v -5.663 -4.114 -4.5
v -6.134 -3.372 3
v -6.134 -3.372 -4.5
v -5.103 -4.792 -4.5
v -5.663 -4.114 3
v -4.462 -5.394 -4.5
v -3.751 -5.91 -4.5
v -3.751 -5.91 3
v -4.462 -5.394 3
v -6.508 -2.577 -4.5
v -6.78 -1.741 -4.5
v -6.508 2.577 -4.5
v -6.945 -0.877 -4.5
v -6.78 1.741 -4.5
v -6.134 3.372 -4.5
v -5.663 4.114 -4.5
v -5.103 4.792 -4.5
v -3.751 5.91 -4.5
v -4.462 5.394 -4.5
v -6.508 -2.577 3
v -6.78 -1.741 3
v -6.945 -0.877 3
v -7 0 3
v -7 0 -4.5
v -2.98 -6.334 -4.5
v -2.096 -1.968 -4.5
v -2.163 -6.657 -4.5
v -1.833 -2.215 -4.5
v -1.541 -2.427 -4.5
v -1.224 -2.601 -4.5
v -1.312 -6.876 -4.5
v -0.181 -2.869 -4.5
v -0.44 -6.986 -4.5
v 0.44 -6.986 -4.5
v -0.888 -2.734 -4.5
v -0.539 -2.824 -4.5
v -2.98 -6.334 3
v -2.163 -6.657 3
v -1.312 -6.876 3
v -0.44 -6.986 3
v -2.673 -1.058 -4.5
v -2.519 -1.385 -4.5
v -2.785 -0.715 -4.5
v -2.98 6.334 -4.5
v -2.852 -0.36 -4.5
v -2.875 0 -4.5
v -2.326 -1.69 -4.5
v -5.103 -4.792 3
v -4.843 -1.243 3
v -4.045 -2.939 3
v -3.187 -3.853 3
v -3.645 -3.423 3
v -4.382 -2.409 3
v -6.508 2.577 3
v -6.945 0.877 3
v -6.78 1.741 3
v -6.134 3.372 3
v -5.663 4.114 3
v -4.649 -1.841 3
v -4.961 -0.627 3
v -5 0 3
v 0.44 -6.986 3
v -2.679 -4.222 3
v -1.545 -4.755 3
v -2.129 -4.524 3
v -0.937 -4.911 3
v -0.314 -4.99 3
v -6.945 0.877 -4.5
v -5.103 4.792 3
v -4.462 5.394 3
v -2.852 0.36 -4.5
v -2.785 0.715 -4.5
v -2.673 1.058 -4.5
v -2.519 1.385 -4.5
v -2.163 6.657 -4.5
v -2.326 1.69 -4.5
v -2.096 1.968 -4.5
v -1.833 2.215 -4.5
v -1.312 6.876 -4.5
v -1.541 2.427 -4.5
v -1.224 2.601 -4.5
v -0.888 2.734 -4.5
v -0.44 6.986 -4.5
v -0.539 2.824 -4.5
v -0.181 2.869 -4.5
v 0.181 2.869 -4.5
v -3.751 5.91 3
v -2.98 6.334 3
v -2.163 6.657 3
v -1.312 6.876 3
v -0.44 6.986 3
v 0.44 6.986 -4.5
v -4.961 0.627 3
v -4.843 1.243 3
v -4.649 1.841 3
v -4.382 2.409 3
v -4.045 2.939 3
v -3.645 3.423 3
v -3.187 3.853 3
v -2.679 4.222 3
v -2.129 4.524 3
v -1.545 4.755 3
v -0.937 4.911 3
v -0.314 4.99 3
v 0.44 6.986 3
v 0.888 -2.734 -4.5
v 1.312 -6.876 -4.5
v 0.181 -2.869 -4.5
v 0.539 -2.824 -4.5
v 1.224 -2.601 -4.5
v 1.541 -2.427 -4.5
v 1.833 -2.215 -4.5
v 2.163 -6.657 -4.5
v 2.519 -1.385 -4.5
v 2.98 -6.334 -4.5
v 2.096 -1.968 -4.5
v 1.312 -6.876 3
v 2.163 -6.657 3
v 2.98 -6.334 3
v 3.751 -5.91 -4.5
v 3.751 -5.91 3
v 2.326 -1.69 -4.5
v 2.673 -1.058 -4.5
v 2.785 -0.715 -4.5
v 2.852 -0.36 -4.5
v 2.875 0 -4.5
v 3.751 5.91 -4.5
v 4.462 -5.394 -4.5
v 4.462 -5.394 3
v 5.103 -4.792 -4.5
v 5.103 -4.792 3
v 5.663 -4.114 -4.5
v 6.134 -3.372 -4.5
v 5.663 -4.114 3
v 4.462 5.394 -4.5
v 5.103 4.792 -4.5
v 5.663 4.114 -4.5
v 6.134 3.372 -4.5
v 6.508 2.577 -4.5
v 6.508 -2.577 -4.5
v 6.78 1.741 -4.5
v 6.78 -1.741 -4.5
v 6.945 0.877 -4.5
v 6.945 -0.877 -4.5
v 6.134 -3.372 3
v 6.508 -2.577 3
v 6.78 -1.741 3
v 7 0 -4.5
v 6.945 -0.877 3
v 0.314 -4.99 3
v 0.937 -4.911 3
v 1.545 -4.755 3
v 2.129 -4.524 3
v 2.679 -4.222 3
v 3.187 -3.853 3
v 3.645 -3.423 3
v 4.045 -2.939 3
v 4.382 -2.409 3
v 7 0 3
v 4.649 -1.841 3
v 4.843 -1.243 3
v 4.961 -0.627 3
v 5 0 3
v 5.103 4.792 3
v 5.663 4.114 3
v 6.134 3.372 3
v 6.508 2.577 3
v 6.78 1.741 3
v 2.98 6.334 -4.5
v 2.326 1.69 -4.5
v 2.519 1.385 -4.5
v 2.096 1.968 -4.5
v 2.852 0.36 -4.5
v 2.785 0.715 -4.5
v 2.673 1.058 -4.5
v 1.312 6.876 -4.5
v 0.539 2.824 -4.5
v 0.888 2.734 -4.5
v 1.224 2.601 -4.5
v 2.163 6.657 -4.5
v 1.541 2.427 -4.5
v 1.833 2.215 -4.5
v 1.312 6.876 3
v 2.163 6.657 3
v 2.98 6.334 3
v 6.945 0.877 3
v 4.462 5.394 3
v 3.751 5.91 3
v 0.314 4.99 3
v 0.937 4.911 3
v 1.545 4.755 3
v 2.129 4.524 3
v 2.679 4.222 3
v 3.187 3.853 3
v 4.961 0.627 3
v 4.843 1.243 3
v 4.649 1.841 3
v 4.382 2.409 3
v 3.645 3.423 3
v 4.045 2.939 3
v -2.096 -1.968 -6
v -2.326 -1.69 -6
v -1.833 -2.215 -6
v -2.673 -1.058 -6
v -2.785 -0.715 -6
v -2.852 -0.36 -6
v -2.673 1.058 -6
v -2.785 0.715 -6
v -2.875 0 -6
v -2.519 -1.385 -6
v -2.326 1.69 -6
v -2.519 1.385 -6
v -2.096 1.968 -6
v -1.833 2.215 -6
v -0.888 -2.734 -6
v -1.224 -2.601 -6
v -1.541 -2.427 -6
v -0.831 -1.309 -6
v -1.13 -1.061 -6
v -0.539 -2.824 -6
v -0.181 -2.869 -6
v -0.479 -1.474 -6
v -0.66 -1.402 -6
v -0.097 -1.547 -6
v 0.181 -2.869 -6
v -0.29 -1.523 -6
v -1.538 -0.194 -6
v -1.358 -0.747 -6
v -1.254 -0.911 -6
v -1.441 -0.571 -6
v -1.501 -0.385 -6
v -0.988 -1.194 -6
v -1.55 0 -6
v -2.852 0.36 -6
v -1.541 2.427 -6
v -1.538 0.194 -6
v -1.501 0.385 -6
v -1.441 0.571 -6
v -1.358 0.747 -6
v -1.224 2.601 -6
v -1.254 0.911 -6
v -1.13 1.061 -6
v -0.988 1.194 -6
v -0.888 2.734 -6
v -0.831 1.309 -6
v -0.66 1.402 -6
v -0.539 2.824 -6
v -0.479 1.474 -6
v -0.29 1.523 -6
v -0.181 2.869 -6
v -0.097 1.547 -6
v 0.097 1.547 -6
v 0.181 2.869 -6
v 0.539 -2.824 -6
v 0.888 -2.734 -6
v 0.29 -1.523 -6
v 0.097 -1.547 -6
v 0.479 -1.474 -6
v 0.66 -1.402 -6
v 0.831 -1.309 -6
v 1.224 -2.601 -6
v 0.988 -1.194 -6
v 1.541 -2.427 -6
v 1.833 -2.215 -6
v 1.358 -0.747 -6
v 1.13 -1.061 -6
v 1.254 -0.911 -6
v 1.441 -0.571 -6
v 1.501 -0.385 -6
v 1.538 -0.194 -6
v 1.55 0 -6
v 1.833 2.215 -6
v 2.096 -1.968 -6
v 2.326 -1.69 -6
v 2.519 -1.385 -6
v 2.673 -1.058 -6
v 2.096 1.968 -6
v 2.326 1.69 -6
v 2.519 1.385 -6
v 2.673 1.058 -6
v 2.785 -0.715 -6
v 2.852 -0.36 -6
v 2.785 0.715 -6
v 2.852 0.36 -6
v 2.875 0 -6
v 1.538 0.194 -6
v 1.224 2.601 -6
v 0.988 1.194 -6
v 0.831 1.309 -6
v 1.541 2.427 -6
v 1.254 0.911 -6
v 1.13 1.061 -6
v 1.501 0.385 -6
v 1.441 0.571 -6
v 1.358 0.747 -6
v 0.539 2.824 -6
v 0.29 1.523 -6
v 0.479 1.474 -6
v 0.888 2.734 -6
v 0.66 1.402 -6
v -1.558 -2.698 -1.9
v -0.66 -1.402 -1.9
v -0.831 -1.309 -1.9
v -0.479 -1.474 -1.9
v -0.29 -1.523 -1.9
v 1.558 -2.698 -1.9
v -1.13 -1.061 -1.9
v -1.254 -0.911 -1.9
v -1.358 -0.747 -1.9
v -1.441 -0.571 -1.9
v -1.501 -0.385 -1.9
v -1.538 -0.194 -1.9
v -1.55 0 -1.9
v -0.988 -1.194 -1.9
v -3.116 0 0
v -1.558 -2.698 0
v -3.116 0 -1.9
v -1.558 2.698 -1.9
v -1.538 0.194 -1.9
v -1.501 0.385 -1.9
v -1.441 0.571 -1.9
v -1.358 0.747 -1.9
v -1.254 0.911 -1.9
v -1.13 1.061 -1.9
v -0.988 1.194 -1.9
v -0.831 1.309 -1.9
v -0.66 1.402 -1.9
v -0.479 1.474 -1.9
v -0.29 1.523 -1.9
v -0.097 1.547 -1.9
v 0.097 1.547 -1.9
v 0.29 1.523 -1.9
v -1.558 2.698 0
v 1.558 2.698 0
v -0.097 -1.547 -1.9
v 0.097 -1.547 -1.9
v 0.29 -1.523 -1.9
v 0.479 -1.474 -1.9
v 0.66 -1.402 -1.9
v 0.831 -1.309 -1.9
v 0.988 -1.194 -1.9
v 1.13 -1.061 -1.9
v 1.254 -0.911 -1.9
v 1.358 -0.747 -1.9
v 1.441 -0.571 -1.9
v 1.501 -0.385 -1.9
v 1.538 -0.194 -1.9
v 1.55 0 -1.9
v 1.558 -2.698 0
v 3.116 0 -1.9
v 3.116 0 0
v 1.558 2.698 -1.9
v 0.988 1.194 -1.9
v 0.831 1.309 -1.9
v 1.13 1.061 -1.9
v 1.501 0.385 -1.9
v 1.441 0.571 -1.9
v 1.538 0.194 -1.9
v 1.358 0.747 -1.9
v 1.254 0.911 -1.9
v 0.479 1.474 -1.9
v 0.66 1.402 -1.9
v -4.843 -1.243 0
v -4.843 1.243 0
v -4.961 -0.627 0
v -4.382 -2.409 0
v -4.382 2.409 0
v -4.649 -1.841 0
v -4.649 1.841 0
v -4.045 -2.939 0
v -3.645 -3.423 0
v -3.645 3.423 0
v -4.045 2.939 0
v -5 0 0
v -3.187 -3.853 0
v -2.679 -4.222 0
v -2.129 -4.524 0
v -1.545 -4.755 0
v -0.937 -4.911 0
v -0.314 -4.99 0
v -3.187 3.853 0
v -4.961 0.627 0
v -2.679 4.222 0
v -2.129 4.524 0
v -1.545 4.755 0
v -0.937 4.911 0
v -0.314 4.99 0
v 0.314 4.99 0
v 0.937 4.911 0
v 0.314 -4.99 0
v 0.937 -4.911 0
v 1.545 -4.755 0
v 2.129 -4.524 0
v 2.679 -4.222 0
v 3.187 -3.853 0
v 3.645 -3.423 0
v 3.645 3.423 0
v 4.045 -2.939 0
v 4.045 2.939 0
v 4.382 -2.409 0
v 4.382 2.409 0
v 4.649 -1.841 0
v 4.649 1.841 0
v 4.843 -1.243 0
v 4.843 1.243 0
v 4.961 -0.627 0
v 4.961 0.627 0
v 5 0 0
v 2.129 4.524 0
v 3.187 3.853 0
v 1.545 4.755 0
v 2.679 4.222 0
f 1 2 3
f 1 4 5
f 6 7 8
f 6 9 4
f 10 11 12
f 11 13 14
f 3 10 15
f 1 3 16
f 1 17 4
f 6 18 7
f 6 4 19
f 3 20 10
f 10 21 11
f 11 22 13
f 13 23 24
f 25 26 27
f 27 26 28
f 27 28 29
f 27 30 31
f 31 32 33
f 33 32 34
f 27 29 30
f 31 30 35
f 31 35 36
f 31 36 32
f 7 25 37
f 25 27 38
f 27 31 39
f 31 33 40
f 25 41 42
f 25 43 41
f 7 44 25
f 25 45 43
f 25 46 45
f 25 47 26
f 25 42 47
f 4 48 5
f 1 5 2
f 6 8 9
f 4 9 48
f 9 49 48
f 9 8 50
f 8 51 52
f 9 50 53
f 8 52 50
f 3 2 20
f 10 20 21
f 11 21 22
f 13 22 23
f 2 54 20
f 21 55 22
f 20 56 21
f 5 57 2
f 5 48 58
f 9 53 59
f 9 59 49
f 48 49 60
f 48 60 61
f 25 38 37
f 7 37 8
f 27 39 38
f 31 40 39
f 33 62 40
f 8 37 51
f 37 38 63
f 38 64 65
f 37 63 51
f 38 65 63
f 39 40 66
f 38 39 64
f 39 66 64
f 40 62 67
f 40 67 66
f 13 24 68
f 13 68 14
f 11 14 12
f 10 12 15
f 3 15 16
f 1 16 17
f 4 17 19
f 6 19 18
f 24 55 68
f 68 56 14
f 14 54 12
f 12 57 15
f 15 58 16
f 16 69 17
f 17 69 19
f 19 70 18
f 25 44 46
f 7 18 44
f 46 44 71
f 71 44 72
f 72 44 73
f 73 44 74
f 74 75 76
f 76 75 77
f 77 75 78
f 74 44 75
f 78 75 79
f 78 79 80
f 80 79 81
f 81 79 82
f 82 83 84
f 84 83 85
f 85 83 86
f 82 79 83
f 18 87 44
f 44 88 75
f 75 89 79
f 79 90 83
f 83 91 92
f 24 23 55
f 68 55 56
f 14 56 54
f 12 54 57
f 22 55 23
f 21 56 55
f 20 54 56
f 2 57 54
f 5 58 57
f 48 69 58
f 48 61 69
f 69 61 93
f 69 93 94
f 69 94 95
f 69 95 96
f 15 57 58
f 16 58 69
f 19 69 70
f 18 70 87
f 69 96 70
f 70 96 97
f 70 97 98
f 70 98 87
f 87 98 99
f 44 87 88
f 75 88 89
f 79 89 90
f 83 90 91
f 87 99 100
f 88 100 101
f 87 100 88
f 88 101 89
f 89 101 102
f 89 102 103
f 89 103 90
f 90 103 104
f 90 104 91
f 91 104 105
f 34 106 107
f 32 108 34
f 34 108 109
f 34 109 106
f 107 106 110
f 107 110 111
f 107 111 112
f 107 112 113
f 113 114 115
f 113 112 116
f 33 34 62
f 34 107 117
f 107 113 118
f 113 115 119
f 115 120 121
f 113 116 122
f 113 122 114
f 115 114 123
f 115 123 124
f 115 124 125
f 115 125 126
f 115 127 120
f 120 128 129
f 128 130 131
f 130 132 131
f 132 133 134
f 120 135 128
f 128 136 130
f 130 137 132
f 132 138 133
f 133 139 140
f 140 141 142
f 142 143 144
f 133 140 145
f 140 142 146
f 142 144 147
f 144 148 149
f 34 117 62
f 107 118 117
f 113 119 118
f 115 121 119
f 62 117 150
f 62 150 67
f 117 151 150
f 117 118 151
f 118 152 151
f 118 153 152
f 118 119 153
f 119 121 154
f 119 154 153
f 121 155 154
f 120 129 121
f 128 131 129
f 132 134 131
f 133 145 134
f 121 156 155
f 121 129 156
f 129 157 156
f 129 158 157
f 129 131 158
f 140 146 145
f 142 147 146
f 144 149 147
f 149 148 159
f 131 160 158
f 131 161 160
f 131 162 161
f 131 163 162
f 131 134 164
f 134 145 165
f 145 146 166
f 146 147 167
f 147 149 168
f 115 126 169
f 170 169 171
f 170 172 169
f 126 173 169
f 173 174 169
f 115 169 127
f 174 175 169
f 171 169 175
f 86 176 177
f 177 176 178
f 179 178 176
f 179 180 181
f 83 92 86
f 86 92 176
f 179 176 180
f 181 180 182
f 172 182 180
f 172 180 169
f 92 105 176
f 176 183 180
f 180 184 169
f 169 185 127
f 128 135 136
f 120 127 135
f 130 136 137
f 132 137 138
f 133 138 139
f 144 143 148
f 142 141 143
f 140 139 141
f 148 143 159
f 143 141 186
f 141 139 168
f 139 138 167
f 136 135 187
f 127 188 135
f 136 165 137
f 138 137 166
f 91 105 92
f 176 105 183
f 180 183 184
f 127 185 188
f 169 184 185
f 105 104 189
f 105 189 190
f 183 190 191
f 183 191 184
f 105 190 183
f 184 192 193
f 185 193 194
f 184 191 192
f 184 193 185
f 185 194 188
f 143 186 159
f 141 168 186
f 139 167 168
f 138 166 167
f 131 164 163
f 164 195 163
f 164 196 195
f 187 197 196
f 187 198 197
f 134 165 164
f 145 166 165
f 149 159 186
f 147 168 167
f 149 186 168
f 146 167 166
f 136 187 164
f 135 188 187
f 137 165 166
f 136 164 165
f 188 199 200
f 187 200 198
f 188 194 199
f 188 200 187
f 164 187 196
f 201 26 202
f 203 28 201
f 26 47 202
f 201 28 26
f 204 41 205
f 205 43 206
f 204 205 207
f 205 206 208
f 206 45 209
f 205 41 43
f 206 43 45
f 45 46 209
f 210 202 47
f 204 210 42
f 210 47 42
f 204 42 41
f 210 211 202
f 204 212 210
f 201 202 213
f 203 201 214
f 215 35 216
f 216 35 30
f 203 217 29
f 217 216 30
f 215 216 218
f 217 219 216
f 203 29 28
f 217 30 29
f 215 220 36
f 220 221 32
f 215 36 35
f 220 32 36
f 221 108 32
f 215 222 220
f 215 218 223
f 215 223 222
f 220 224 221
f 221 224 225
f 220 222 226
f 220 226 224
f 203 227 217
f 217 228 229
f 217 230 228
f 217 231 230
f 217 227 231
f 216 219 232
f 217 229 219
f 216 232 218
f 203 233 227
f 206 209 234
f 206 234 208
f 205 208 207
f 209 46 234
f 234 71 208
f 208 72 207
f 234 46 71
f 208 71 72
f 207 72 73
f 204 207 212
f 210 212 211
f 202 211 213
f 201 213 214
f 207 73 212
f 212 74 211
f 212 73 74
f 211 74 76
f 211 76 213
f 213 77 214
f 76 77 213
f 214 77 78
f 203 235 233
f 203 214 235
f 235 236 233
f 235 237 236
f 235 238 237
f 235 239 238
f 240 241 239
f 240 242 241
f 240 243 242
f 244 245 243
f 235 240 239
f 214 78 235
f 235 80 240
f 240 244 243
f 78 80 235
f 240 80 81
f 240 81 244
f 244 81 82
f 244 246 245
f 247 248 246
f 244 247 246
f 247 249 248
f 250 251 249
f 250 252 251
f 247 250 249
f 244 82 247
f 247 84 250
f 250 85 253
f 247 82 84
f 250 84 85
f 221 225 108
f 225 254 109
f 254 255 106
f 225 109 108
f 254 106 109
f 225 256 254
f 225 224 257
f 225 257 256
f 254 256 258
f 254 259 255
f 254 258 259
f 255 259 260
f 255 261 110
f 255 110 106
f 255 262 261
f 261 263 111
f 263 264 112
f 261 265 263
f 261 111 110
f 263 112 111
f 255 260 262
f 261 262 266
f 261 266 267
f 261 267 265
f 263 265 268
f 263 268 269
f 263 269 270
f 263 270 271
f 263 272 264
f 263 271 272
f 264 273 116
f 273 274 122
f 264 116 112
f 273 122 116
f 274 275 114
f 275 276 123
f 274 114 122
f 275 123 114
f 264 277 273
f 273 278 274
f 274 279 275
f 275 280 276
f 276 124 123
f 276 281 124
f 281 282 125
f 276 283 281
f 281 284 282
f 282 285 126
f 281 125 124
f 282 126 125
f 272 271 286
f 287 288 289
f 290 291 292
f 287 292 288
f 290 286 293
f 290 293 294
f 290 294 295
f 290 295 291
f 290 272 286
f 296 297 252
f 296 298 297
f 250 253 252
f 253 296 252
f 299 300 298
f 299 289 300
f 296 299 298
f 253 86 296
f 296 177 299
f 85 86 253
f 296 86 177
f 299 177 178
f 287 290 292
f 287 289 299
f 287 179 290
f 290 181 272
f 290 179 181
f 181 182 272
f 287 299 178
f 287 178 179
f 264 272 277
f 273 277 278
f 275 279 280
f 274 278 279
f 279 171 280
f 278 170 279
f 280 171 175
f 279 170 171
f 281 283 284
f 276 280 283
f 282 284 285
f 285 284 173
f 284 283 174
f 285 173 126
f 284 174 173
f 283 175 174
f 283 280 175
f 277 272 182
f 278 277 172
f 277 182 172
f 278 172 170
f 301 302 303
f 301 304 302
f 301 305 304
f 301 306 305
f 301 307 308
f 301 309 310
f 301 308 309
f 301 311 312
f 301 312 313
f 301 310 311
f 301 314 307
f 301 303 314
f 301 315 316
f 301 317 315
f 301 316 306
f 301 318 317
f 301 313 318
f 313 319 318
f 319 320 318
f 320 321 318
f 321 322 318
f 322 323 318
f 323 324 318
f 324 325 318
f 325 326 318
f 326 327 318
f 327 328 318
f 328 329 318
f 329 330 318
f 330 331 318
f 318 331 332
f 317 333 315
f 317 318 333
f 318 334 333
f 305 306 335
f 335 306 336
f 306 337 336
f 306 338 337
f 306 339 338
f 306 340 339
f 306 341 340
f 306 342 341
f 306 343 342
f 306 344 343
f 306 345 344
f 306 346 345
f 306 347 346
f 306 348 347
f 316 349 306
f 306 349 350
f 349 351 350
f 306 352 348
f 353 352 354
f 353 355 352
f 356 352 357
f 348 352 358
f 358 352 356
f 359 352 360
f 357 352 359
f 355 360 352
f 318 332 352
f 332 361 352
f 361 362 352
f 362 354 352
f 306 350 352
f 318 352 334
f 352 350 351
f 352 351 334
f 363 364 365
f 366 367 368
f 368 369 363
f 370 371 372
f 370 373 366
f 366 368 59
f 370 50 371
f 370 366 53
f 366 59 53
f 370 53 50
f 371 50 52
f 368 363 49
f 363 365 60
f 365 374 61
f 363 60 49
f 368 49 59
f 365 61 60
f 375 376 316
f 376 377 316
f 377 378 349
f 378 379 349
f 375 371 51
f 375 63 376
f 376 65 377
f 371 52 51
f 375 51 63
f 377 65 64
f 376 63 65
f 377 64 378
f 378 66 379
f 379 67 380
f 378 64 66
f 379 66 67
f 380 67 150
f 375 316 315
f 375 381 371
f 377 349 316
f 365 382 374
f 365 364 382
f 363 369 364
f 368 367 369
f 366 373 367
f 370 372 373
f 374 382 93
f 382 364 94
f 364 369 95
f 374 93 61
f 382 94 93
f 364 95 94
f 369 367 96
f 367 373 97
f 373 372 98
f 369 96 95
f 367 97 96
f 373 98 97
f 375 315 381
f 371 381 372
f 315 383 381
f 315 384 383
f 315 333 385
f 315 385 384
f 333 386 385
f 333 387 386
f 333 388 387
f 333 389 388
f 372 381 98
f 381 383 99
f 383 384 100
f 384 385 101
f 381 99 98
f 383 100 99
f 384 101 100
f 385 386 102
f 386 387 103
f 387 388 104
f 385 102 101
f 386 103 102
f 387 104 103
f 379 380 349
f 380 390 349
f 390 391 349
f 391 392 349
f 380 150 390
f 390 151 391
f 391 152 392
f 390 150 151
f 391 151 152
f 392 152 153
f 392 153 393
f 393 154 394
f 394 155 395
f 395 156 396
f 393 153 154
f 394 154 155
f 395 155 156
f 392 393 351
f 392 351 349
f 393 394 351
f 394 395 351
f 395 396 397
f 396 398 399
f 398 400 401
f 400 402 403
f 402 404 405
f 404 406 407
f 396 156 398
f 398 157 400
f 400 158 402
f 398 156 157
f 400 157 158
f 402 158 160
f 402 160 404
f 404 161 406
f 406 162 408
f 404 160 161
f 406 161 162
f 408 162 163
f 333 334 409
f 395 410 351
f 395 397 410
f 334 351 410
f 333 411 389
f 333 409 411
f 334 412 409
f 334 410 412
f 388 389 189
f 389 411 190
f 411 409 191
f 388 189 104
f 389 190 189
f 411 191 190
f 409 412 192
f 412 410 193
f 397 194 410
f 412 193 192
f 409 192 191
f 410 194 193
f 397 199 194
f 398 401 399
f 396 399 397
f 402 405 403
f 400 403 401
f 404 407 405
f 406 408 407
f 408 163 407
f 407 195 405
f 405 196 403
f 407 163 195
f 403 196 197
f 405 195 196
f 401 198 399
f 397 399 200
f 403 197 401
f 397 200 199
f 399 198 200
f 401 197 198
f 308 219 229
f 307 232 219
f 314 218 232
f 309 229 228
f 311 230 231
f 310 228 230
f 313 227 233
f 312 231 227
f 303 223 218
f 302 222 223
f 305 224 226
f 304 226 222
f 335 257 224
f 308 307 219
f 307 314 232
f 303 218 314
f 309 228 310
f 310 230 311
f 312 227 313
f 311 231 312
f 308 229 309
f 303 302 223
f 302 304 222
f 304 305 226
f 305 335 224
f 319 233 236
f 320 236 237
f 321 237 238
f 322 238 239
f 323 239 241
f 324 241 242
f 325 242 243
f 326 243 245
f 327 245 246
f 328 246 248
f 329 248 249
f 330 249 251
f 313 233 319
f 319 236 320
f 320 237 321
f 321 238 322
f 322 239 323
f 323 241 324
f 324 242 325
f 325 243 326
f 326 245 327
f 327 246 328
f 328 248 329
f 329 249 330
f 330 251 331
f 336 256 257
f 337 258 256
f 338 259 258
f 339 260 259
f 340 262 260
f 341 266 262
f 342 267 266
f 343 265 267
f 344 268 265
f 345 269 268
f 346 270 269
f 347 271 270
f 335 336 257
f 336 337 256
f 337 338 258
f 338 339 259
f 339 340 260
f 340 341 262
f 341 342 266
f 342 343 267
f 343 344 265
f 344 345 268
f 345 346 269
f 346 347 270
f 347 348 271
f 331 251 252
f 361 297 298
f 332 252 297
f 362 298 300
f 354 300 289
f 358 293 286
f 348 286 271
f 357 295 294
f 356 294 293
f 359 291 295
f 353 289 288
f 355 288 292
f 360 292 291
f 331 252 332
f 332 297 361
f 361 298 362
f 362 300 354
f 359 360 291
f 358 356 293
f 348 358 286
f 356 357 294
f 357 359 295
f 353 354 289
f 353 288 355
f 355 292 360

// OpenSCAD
$fn = 50;

difference() {
	union() {
		translate(v = [0, 0, -4.5]) {
			cylinder(h = 7.5, r = 7.0);
		}
		#translate(v = [0, 0, -6.0]) {
			cylinder(h = 6, r = 2.875);
		}
	}
	union() {
		translate(v = [0, 0, 0]) {
			rotate(a = [0, 0, 0]) {
				difference() {
					union() {
						translate(v = [0, 0, -1.9]) {
							linear_extrude(height = 1.9) {
								polygon(points = [[3.1158, 0.0], [1.5579000000000005, 2.698361953111554], [-1.5578999999999994, 2.6983619531115544], [-3.1158, 3.815754496783323e-16], [-1.5579000000000014, -2.6983619531115535], [1.557899999999998, -2.6983619531115552]]);
							}
						}
					}
					union();
				}
			}
		}
		#cylinder(h = 3, r = 5.0);
		#translate(v = [0, 0, -100.0]) {
			cylinder(h = 200, r = 1.55);
		}
	}
}
